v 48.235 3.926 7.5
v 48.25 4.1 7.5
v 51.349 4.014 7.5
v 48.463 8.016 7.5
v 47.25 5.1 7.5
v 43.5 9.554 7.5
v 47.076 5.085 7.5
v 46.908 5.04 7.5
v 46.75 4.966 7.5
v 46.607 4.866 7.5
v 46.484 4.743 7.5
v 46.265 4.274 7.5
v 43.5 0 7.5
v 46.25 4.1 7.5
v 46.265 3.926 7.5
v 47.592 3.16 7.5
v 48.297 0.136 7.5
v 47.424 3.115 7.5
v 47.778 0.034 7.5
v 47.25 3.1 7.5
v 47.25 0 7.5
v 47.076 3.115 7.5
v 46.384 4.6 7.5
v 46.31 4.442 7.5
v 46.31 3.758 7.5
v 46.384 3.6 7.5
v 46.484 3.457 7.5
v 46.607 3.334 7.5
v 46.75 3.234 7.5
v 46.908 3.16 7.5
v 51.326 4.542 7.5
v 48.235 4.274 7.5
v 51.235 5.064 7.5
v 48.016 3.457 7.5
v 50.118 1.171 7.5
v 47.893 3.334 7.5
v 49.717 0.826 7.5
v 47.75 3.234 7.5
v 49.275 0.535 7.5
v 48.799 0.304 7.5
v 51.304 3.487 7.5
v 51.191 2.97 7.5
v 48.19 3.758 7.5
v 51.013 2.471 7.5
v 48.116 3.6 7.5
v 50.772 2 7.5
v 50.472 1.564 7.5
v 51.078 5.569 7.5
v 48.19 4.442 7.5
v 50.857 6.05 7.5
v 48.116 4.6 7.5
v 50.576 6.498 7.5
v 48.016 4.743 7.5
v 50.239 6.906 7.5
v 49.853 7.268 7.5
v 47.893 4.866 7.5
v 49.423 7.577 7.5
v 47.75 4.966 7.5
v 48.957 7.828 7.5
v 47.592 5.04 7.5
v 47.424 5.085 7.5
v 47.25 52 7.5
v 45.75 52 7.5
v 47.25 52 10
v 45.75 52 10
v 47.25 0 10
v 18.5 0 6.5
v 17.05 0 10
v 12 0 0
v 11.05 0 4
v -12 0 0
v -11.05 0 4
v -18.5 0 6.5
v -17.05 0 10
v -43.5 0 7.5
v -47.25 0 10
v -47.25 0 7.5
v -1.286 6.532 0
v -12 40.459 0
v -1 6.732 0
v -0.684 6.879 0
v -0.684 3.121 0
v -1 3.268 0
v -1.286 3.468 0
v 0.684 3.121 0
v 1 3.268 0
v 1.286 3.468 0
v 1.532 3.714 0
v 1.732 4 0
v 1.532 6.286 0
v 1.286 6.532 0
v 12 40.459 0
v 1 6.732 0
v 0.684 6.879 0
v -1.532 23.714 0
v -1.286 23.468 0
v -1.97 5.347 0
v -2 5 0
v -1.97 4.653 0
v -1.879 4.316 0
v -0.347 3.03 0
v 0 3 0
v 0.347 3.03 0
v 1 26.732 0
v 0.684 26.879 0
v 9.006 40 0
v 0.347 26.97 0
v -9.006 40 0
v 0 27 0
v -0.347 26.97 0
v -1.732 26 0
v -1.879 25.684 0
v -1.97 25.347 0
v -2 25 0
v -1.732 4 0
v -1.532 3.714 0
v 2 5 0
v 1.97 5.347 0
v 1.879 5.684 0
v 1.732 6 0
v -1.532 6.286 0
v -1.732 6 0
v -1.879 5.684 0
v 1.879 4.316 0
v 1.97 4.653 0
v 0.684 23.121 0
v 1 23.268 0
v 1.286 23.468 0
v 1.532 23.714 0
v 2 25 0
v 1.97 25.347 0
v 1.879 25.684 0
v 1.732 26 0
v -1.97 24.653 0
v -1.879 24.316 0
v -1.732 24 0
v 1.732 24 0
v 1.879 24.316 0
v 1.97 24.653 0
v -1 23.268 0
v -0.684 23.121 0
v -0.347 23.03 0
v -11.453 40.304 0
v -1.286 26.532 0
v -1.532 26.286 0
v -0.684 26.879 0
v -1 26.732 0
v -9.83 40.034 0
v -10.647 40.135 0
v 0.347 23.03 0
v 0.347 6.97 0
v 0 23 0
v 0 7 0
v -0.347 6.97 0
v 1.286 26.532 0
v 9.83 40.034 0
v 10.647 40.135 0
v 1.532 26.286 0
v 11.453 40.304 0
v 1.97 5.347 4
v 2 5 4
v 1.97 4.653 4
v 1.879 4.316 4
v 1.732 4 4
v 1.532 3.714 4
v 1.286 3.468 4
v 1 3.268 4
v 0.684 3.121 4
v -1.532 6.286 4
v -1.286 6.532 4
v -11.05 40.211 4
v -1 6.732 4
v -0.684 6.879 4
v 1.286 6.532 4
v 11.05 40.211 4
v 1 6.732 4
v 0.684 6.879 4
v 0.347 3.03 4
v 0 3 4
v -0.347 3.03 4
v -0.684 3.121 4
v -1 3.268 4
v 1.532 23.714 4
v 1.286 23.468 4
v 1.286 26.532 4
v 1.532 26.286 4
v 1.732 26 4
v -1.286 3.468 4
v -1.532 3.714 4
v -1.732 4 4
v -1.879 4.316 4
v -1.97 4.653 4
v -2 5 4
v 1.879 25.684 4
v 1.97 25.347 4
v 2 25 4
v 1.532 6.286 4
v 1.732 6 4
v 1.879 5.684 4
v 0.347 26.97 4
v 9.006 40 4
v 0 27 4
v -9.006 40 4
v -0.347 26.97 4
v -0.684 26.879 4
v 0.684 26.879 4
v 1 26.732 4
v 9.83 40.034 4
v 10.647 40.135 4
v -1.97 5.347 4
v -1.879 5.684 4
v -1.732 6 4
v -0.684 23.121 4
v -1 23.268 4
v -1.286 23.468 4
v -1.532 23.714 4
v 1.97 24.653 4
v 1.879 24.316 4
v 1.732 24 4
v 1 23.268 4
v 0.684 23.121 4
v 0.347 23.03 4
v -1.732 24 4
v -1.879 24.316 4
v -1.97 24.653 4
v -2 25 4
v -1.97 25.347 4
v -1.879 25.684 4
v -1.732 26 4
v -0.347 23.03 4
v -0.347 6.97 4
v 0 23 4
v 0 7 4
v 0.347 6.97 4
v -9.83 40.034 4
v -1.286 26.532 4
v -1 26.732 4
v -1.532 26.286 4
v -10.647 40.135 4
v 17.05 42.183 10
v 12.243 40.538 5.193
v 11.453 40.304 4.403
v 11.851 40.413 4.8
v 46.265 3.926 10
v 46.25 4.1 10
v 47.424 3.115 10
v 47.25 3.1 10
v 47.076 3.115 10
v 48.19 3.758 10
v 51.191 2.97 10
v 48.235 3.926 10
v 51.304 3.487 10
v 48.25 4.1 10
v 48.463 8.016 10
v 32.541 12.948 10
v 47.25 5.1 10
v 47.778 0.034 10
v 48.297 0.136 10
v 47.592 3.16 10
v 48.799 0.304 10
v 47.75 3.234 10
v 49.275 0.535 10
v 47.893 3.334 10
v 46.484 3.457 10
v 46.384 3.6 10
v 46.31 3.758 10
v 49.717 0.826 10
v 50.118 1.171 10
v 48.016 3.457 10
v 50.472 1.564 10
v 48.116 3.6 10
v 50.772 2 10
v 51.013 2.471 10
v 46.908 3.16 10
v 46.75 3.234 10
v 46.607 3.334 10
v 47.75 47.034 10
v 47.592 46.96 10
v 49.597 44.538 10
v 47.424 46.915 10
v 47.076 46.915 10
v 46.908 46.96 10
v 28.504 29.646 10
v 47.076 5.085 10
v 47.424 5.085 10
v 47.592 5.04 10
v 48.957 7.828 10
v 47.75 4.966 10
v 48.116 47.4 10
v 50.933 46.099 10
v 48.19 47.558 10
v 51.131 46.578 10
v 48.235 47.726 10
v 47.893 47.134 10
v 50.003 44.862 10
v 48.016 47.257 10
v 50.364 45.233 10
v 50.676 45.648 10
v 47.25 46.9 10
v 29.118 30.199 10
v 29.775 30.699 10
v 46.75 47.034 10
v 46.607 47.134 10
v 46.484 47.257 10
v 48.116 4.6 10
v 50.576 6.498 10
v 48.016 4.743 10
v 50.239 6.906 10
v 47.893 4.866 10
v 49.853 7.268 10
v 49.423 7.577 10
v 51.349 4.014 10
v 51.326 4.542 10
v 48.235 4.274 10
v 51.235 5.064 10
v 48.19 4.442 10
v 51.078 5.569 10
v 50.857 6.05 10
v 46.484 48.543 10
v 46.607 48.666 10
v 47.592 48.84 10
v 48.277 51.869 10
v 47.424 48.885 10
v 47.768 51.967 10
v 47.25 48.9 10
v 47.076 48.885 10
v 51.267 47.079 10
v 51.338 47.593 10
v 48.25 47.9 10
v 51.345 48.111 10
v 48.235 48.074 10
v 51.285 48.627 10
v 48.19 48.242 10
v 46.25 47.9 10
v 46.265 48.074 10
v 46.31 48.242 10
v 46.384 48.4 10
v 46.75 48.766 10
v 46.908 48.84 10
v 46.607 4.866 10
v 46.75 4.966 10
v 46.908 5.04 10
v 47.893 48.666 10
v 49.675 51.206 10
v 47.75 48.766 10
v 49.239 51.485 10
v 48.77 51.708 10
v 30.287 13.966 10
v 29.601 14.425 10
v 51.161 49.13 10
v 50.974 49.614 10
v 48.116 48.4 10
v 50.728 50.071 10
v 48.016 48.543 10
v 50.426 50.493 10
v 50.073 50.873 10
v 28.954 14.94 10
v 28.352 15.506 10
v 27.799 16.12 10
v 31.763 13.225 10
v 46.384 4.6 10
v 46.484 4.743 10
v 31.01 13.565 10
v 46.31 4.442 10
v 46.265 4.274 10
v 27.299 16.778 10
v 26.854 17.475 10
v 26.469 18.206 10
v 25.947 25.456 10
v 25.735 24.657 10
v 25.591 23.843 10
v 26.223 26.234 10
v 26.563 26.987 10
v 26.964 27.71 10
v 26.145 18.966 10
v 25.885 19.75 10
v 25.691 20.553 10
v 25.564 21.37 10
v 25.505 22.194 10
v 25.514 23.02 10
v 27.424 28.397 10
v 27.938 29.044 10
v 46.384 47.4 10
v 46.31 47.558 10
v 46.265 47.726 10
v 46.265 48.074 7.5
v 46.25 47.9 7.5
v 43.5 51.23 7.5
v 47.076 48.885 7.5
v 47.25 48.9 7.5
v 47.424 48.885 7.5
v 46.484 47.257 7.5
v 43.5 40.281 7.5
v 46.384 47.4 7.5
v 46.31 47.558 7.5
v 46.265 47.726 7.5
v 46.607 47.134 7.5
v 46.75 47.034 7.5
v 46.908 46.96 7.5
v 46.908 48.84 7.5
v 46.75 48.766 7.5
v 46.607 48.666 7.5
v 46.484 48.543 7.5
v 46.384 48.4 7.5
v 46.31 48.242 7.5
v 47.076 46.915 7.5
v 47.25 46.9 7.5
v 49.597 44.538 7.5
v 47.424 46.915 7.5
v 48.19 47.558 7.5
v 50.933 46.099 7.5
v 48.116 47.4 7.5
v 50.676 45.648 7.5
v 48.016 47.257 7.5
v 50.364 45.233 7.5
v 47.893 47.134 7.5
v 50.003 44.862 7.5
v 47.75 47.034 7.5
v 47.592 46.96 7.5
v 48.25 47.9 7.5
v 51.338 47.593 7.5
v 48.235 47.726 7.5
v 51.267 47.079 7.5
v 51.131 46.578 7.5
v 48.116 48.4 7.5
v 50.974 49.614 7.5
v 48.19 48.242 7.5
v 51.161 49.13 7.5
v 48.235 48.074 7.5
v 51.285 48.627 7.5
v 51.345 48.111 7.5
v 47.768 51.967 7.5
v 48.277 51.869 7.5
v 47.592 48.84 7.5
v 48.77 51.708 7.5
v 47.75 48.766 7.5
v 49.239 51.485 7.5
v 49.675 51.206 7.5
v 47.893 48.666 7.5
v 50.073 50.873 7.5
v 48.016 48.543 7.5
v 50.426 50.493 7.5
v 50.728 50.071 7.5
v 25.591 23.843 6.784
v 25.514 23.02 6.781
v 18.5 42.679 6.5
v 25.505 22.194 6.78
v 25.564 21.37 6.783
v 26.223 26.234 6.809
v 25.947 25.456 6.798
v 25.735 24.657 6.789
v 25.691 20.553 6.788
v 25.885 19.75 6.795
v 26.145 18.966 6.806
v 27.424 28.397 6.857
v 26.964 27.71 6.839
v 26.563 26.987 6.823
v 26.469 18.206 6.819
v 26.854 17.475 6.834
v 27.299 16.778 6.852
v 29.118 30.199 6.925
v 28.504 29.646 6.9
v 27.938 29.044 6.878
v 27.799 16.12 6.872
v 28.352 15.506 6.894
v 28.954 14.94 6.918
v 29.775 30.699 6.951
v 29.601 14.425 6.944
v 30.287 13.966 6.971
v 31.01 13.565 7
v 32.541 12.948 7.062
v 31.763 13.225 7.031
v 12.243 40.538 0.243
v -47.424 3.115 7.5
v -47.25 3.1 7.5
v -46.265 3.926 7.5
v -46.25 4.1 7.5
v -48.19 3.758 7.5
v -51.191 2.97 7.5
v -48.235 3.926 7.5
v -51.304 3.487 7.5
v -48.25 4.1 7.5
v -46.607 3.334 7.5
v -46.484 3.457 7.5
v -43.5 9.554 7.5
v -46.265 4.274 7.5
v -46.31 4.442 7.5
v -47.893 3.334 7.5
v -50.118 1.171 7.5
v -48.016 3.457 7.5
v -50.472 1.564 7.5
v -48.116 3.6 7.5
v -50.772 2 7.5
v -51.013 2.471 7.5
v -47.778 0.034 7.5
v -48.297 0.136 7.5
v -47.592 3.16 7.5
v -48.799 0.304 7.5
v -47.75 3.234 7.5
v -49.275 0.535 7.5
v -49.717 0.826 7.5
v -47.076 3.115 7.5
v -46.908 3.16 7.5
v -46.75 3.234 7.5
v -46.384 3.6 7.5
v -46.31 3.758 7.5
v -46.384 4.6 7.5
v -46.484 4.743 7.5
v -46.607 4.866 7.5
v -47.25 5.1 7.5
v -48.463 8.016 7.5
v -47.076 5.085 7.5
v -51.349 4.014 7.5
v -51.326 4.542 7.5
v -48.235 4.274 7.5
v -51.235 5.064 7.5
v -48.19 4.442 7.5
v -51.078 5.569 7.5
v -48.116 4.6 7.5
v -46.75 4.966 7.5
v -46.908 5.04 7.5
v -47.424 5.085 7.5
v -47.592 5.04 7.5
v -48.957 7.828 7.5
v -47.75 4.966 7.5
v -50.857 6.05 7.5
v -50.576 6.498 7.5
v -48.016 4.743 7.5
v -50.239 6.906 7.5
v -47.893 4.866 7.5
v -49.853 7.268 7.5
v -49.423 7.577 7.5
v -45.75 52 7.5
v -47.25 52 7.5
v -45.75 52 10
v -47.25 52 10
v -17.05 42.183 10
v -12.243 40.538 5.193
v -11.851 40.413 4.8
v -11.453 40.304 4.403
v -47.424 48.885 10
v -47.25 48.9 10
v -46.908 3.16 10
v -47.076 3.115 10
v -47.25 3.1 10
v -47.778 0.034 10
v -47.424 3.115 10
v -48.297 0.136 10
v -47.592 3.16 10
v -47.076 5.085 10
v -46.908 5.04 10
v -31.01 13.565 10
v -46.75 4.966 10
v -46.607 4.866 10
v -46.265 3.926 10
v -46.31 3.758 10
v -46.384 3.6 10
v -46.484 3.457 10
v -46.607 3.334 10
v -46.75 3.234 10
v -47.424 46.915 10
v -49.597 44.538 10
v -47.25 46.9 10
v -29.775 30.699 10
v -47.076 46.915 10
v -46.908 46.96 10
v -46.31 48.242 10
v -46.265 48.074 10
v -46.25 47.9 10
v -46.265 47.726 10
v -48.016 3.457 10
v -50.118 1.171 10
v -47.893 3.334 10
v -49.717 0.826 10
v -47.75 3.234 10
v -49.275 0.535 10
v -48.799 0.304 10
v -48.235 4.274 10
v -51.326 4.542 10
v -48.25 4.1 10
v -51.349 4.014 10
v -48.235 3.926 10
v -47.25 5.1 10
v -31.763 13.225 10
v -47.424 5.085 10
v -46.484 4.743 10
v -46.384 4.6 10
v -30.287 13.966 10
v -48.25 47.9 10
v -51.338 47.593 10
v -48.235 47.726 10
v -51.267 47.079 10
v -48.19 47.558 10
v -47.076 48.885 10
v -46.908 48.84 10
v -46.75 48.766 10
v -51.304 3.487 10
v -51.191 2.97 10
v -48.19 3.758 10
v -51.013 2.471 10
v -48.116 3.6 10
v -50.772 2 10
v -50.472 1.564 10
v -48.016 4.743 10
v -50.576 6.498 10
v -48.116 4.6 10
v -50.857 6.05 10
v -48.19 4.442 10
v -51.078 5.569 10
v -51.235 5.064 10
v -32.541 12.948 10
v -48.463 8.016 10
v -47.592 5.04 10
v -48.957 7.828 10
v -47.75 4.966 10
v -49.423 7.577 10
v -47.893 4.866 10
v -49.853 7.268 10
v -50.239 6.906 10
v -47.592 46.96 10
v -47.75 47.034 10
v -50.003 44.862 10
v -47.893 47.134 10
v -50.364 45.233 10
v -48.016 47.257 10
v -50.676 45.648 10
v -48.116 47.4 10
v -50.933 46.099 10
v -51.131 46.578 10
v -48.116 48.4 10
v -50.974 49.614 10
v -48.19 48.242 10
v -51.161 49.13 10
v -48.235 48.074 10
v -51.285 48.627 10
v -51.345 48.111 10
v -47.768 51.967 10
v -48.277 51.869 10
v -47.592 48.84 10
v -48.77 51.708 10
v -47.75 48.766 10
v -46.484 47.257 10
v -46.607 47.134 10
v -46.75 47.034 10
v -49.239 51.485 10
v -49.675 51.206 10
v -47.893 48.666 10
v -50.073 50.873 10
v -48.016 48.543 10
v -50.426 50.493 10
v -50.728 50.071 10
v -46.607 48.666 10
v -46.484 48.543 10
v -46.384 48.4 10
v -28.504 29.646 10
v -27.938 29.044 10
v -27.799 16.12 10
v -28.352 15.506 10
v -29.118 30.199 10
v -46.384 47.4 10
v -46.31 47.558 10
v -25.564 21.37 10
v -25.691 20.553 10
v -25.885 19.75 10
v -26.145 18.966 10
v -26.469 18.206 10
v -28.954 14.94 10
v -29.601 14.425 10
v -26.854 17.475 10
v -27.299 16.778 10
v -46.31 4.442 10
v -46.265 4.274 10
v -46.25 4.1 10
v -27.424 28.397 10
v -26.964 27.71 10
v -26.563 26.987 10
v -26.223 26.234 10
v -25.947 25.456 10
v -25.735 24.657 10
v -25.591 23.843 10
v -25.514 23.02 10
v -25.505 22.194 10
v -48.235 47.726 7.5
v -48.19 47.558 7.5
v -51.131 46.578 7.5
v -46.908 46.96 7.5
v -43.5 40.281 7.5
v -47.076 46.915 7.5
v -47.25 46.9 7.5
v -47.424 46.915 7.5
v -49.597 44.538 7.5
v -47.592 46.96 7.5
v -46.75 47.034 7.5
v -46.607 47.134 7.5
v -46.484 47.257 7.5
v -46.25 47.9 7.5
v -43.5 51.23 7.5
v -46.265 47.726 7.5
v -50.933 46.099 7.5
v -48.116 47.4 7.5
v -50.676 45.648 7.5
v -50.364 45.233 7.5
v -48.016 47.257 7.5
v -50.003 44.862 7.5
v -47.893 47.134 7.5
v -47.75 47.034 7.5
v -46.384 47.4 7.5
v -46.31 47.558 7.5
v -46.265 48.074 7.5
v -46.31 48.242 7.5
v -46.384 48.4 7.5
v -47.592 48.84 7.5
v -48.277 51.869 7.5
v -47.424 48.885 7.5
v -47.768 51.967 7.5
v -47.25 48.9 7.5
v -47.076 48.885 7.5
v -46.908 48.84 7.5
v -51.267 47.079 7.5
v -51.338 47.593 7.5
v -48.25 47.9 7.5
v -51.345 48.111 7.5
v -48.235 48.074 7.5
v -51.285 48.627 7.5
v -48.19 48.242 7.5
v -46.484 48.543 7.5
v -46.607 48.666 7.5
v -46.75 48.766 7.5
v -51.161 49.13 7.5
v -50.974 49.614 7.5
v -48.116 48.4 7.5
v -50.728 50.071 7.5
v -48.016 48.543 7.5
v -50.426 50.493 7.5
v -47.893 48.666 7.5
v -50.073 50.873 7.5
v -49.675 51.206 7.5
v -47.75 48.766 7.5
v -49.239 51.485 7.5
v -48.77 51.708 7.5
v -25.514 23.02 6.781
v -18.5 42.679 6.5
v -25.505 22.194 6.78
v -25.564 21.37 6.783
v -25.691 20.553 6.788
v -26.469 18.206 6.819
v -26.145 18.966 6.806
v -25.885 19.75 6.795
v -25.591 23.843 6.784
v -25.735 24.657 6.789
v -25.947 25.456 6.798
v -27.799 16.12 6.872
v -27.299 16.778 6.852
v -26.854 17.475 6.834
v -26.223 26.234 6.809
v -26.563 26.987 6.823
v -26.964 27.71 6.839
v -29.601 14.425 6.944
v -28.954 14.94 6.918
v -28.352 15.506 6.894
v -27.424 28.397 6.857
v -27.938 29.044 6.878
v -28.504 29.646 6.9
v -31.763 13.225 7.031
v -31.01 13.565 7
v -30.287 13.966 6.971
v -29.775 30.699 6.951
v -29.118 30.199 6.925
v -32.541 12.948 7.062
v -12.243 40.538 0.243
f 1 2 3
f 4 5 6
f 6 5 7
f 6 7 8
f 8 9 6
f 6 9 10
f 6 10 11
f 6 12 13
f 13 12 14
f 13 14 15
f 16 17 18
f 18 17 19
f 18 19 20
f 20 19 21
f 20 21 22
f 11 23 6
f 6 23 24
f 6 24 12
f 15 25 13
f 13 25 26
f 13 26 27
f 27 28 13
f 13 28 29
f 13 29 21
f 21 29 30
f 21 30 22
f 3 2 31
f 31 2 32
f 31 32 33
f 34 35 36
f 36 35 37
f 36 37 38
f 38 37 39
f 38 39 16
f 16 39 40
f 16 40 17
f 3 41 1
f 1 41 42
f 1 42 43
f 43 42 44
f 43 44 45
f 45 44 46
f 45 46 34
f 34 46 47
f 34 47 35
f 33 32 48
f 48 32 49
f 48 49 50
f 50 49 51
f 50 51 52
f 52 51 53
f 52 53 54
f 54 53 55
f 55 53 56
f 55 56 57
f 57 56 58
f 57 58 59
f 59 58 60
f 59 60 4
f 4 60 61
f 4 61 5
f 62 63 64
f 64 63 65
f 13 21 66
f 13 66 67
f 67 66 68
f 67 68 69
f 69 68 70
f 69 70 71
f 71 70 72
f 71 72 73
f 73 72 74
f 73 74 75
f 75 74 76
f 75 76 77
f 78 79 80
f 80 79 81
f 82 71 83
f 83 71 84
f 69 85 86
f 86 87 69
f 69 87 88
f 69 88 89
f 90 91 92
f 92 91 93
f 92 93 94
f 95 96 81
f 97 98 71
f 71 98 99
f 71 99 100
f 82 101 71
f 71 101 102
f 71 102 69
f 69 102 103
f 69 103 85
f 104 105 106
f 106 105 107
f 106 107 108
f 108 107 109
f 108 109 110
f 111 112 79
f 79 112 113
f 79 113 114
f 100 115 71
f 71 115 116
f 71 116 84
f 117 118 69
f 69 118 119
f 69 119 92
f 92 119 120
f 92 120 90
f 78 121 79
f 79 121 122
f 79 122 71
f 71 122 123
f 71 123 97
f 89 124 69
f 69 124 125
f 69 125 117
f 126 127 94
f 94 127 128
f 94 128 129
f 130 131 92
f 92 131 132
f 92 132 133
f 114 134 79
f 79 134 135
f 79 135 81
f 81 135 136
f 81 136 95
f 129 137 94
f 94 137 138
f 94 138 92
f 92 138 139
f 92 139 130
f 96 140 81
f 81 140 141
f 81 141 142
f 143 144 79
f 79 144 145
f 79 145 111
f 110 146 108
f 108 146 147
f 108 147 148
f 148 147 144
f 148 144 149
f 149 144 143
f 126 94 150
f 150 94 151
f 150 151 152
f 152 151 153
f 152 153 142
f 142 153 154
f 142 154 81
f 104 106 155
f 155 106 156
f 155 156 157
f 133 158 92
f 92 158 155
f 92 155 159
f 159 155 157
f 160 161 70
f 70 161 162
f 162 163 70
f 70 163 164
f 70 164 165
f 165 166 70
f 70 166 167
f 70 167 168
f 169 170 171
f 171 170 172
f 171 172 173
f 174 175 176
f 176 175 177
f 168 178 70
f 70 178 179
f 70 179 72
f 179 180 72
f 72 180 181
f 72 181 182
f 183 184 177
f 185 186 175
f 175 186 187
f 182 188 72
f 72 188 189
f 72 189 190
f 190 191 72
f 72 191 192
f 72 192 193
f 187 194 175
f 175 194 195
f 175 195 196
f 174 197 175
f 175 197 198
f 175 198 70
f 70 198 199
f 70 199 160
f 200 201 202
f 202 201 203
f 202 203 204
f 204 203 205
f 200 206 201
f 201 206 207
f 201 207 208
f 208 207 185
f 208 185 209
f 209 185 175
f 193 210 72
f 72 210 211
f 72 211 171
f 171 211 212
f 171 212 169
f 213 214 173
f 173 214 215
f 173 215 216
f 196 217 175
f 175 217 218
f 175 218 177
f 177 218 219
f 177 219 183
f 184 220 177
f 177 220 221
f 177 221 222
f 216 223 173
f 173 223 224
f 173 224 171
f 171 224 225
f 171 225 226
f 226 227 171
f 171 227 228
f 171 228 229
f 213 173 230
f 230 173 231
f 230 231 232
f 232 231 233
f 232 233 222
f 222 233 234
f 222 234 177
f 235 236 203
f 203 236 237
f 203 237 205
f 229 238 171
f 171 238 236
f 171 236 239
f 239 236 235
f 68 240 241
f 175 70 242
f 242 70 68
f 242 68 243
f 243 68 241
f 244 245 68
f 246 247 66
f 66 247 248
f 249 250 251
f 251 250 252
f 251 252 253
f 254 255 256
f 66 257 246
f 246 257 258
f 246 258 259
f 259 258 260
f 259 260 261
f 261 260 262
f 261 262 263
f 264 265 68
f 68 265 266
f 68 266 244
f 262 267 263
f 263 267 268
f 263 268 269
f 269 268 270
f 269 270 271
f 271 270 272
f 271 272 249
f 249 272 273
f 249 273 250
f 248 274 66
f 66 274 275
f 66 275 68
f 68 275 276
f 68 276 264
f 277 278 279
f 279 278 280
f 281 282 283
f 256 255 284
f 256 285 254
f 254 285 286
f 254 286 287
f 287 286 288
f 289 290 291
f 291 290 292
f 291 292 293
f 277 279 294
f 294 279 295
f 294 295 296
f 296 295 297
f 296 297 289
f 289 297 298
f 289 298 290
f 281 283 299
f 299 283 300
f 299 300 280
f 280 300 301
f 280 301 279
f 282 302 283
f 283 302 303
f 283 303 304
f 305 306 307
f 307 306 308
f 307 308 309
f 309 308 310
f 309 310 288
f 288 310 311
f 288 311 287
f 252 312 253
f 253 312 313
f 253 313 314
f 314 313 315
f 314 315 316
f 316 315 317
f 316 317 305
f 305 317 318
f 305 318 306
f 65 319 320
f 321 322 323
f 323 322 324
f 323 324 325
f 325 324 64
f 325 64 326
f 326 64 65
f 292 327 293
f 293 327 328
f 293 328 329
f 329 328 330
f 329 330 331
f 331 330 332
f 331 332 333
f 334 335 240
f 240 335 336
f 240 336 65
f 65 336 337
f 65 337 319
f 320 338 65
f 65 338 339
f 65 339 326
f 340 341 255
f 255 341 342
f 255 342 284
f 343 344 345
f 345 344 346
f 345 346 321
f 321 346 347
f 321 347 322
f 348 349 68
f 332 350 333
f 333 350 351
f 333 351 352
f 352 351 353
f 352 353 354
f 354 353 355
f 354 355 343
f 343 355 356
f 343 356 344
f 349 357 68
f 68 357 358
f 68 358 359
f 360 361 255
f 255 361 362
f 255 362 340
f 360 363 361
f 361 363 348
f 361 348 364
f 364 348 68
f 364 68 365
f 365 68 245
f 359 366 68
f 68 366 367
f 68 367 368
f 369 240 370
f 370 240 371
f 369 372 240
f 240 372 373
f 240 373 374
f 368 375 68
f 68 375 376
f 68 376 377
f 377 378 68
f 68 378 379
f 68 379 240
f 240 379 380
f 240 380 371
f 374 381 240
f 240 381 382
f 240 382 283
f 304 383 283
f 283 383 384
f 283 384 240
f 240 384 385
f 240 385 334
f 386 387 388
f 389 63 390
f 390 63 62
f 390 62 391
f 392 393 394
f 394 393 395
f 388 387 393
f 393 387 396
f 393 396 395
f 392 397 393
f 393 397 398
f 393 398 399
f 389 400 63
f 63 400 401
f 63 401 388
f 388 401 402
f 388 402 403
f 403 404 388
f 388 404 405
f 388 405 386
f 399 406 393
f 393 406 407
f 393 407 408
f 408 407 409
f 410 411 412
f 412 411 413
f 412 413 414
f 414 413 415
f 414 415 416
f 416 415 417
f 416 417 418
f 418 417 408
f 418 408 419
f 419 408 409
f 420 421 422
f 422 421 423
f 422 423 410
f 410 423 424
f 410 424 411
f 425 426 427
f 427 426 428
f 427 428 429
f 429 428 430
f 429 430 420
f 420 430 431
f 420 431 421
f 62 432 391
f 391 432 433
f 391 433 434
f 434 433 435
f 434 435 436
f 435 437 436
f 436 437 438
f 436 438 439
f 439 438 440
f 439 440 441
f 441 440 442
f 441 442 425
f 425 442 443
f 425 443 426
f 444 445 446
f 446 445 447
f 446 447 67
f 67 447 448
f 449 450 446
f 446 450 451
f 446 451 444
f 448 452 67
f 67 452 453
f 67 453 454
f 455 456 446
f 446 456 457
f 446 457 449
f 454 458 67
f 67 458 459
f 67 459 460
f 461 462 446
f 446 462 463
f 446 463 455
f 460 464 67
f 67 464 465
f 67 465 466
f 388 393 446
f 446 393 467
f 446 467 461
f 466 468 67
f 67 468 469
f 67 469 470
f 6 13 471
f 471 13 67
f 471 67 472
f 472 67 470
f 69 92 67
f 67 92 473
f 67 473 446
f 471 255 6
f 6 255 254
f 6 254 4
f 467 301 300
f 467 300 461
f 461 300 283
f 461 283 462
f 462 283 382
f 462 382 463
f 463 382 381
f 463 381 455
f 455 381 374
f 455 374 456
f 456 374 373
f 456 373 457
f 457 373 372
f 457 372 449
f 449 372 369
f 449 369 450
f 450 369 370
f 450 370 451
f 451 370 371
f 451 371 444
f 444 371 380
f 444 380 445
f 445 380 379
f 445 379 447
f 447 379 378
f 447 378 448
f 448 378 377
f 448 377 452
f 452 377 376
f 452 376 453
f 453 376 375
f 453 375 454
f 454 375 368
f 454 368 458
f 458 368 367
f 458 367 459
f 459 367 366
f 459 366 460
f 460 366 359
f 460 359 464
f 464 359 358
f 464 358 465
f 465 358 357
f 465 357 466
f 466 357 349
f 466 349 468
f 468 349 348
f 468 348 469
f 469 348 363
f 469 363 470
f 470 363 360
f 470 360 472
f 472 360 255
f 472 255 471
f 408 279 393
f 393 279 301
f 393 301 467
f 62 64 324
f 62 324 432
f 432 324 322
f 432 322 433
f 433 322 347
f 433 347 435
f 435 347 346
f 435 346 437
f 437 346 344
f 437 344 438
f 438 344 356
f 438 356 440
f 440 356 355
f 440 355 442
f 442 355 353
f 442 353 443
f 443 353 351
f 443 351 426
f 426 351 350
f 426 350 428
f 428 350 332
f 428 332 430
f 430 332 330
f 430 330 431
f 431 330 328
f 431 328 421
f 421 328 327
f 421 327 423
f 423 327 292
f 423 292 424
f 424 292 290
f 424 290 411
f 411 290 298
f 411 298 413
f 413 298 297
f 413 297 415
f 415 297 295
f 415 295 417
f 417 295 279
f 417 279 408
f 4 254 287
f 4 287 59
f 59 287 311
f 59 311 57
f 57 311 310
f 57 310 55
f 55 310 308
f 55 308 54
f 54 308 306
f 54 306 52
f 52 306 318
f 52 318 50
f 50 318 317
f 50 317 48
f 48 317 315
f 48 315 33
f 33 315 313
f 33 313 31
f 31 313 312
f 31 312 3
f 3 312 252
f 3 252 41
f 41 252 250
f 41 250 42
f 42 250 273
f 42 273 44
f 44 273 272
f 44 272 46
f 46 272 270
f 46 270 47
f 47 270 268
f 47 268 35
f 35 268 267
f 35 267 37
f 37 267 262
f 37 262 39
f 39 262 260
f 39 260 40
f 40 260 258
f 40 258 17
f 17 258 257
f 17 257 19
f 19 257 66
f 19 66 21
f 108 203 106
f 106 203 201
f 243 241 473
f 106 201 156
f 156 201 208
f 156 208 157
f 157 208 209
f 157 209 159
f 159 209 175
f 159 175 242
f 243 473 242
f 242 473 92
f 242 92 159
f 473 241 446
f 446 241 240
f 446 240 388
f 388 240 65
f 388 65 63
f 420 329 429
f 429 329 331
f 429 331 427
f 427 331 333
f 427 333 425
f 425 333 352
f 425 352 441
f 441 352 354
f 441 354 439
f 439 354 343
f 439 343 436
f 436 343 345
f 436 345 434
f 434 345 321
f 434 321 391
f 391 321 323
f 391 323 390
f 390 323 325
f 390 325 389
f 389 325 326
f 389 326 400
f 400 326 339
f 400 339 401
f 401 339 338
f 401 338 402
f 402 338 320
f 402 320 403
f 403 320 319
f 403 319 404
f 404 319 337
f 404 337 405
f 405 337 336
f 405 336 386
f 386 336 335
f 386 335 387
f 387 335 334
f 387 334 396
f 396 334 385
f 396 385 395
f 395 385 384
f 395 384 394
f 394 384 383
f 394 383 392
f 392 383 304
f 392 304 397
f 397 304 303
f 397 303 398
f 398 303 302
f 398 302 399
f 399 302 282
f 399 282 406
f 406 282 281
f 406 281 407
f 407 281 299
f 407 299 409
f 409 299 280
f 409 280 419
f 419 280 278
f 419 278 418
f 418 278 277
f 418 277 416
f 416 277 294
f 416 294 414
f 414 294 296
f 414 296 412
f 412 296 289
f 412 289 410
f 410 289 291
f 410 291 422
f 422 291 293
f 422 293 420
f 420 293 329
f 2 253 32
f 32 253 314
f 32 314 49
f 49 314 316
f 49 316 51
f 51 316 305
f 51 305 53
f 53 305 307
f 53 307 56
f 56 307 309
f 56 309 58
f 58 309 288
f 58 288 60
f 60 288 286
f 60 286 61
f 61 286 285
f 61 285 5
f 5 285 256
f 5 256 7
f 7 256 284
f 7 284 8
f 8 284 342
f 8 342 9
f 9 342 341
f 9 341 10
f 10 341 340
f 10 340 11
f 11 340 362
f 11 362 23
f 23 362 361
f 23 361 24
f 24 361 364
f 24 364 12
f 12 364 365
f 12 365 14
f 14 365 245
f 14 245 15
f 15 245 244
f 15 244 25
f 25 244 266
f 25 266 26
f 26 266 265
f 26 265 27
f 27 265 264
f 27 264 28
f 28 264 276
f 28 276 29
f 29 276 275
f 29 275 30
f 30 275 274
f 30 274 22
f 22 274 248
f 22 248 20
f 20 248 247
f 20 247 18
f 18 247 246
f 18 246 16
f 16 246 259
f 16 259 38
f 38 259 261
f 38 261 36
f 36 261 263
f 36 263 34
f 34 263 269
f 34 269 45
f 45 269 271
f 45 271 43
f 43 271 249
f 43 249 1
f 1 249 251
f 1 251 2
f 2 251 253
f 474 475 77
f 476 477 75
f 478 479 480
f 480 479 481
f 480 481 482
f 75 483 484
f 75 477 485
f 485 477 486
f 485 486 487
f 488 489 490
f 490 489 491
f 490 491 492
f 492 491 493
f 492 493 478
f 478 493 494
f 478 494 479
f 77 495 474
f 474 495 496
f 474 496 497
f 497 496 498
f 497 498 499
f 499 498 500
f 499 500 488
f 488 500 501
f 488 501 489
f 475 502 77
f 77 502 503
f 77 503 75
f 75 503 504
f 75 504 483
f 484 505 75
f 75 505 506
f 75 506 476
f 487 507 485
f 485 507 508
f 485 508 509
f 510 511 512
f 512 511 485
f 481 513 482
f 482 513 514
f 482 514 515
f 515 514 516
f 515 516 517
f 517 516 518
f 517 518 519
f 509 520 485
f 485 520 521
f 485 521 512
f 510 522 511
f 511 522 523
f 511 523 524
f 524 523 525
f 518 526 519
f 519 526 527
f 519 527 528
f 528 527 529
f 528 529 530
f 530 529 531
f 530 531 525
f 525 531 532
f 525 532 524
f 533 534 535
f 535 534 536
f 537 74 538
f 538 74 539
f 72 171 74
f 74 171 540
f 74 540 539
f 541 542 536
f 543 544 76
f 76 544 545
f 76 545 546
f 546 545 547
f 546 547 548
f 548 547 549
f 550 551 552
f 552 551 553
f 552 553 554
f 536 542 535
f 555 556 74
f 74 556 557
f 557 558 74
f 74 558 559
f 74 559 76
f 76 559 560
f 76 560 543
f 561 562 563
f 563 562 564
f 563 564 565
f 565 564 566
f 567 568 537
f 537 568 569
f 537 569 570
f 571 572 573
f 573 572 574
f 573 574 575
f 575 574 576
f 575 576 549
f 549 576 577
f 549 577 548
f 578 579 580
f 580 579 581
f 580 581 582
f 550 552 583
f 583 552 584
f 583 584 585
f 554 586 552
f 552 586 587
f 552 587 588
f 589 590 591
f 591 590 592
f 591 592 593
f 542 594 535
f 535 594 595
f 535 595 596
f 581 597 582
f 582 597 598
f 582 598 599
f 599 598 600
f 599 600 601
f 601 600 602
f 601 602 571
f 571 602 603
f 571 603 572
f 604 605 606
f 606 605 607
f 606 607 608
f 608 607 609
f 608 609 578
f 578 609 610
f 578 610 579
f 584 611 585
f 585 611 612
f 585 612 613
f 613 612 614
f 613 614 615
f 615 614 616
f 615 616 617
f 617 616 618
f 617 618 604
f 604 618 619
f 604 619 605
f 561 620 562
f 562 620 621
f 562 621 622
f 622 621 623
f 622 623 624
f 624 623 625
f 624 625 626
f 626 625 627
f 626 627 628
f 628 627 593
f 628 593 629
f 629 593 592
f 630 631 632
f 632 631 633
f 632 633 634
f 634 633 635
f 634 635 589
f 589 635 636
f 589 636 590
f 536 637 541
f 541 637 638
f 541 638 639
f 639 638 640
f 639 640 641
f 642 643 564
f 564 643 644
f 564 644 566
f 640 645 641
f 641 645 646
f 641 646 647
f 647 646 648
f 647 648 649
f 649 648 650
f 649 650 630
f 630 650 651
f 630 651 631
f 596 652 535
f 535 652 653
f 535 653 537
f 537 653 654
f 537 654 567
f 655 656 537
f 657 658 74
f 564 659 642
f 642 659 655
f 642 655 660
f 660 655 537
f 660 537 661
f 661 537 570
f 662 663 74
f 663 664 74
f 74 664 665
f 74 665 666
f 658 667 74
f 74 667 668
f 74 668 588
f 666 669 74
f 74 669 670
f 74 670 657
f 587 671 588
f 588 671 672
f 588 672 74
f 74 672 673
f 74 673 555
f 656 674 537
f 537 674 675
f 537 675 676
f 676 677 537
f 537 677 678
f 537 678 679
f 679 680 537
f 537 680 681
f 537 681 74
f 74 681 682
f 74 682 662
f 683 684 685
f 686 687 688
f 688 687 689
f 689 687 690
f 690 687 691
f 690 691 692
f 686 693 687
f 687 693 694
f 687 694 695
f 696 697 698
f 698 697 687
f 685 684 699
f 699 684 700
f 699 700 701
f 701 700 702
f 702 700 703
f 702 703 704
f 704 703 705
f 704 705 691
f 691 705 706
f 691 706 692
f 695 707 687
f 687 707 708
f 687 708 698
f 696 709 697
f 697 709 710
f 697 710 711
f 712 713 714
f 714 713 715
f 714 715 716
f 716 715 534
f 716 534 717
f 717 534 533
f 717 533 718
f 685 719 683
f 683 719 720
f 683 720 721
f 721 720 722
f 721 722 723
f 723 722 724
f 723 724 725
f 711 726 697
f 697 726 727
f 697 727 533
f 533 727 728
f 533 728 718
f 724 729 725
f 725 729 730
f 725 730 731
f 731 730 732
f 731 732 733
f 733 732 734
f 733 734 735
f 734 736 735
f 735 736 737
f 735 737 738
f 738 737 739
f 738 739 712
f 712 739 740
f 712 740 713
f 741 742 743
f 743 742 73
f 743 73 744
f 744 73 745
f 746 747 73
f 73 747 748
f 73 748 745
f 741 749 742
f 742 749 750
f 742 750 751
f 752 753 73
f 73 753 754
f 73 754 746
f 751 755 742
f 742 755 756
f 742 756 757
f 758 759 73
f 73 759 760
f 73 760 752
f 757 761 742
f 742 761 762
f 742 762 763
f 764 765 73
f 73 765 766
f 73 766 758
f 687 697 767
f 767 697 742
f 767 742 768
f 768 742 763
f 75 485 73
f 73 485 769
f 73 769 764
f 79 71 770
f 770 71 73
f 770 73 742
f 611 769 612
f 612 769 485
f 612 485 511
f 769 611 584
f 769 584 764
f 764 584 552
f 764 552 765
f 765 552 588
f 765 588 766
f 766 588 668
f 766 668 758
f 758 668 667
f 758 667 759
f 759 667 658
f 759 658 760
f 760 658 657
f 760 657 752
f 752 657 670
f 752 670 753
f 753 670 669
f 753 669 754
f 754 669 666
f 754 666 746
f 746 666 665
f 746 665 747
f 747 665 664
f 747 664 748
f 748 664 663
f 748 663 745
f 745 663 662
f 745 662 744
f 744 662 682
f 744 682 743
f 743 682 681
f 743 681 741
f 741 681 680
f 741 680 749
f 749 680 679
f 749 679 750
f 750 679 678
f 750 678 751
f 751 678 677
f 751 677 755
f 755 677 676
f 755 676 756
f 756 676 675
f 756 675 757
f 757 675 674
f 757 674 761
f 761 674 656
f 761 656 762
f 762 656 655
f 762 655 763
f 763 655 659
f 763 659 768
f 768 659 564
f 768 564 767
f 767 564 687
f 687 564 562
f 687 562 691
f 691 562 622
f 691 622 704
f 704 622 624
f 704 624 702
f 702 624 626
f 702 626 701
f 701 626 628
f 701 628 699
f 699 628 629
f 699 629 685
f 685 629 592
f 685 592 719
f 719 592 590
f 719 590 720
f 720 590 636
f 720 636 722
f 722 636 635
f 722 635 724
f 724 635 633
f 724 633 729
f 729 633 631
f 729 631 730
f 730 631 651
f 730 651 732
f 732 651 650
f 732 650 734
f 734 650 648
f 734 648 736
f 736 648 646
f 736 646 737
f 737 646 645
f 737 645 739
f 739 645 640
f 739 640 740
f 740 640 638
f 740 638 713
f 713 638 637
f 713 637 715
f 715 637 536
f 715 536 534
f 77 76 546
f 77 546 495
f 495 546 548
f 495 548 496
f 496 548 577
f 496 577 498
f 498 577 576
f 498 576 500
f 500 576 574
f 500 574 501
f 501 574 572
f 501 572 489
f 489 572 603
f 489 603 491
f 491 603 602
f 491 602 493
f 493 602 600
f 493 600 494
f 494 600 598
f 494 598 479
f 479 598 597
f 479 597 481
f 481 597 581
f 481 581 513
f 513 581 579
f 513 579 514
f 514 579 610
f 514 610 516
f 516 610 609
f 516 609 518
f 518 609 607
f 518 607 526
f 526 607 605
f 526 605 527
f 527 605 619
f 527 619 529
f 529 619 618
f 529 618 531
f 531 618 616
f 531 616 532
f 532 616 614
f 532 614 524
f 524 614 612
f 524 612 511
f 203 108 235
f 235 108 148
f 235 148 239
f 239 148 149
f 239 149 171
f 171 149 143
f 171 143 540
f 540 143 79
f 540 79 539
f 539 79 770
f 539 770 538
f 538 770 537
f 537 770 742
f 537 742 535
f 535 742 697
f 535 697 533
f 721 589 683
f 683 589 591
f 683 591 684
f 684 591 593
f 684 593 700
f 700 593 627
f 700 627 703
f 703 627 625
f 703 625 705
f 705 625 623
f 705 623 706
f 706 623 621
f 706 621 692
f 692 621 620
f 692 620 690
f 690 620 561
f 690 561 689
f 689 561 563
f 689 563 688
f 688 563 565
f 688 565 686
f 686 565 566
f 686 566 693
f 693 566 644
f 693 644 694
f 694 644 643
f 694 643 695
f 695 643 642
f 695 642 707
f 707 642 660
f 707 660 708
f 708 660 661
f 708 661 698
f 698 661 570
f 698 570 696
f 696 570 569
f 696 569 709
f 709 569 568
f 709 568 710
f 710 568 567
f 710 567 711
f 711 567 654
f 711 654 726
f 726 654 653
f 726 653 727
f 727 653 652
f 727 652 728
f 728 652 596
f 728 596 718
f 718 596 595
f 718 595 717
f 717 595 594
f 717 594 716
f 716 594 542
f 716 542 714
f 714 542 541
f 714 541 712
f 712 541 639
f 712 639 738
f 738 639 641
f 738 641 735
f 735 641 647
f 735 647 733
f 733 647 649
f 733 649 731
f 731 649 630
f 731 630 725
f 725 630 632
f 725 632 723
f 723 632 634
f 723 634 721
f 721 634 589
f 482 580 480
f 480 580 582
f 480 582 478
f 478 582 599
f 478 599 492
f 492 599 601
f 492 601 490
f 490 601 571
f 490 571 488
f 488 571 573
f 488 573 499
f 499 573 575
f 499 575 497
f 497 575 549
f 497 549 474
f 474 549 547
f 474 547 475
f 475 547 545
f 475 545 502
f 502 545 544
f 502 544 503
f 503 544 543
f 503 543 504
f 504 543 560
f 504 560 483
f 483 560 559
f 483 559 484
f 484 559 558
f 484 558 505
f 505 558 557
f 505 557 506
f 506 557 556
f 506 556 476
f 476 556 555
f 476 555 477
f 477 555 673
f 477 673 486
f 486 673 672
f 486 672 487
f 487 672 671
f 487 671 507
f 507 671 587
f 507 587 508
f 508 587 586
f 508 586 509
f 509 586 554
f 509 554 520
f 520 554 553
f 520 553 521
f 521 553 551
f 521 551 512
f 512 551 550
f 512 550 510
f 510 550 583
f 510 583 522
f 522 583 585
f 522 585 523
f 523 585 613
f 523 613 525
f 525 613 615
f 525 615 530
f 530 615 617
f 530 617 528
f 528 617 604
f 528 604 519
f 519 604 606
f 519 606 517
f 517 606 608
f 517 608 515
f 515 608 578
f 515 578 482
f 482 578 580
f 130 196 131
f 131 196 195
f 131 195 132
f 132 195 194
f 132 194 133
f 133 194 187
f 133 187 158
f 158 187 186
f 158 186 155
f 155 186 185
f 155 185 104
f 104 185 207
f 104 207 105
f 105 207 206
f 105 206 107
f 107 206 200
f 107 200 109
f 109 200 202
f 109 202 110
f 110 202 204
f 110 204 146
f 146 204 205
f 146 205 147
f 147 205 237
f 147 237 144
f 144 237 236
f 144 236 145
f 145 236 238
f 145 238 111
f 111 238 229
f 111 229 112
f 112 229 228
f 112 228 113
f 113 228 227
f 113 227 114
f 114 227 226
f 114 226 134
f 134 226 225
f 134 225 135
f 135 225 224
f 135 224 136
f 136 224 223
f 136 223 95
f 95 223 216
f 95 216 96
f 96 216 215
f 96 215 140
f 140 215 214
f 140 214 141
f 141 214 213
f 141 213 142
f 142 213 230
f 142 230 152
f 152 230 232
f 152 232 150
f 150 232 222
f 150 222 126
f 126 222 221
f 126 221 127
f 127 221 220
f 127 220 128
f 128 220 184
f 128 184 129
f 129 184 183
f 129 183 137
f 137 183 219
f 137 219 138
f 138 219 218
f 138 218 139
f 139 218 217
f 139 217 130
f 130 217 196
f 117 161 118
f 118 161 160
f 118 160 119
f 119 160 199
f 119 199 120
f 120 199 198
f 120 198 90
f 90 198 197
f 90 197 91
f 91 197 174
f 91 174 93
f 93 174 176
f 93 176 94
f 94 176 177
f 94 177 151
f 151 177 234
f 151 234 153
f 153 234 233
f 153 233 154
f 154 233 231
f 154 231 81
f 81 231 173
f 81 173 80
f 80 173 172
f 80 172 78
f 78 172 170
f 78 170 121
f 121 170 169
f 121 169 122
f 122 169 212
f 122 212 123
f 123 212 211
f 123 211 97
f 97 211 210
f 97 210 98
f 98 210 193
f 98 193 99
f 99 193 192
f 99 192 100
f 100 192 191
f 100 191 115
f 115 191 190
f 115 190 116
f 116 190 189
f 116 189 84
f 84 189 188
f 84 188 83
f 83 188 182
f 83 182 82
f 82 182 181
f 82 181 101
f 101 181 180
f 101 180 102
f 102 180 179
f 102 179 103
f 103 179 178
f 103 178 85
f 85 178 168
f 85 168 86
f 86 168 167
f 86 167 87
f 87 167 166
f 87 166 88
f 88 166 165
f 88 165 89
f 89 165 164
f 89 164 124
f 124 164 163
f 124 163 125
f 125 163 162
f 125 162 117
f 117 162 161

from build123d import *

# Parameters (mm, degrees)
BOSS_EXTRUDE1_DEPTH = 52
SKETCH2_R           = 1
CUT_EXTRUDE1_DEPTH  = 11
SKETCH3_R           = 2
CUT_EXTRUDE2_DEPTH  = 5


with BuildPart() as part:
    # Sketch1 → Boss-Extrude1 (new body)
    with BuildSketch(Plane(origin=(0, 0, 0), x_dir=(1, 0, 0), z_dir=(0, 1, 0))):
        Polygon((0, 0), (0, -4), (11.050252532, -4), (17.050252532, -10), (51.5, -10), (51.5, -7.5), (43.5, -7.5), (18.5, -6.5), (12, 0), align=None)
    extrude(amount=BOSS_EXTRUDE1_DEPTH)

    # Sketch2 → Cut-Extrude1 (cut, through all)
    with BuildSketch(Plane.XY.offset(10)):
        with Locations((47.25, 47.9)):
            Circle(SKETCH2_R)
        with Locations((47.25, 4.1)):
            Circle(SKETCH2_R)
        with BuildLine():
            Line((45.75, 52), (0, 52))
            Line((0, 52), (0, 40))
            Line((0, 40), (9.006487072, 40))
            ThreePointArc((9.006487072, 40), (10.647005463, 40.135482809), (12.243071445, 40.538260118))
            Line((12.243071445, 40.538260118), (45.75, 52))
        make_face()
        with BuildLine():
            Line((49.597069908, 44.538264905), (29.77543925, 30.69935389))
            ThreePointArc((29.77543925, 30.69935389), (25.619228249, 20.960406025), (32.541456651, 12.947669329))
            Line((32.541456651, 12.947669329), (48.463002773, 8.016455575))
            ThreePointArc((48.463002773, 8.016455575), (51.303854207, 3.486594693), (47.25, 0))
            Line((47.25, 0), (51.5, 0))
            Line((51.5, 0), (51.5, 52))
            Line((51.5, 52), (47.25, 52))
            ThreePointArc((47.25, 52), (51.161081301, 49.130220734), (49.597069908, 44.538264905))
        make_face()
    extrude(amount=-CUT_EXTRUDE1_DEPTH, mode=Mode.SUBTRACT)

    # Mirror1: part across plane


with BuildPart() as part_1:
    add(part.part)
    add(part.part.mirror(Plane(origin=(0, 52, 0), x_dir=(0, 0, 1), z_dir=(1, 0, 0))))

    # Sketch3 → Cut-Extrude2 (cut, through all)
    with BuildSketch(Plane.XY.offset(4)):
        with Locations((0, 5)):
            Circle(SKETCH3_R)
        with Locations((0, 25)):
            Circle(SKETCH3_R)
    extrude(amount=-CUT_EXTRUDE2_DEPTH, mode=Mode.SUBTRACT)


solid = part_1.part
